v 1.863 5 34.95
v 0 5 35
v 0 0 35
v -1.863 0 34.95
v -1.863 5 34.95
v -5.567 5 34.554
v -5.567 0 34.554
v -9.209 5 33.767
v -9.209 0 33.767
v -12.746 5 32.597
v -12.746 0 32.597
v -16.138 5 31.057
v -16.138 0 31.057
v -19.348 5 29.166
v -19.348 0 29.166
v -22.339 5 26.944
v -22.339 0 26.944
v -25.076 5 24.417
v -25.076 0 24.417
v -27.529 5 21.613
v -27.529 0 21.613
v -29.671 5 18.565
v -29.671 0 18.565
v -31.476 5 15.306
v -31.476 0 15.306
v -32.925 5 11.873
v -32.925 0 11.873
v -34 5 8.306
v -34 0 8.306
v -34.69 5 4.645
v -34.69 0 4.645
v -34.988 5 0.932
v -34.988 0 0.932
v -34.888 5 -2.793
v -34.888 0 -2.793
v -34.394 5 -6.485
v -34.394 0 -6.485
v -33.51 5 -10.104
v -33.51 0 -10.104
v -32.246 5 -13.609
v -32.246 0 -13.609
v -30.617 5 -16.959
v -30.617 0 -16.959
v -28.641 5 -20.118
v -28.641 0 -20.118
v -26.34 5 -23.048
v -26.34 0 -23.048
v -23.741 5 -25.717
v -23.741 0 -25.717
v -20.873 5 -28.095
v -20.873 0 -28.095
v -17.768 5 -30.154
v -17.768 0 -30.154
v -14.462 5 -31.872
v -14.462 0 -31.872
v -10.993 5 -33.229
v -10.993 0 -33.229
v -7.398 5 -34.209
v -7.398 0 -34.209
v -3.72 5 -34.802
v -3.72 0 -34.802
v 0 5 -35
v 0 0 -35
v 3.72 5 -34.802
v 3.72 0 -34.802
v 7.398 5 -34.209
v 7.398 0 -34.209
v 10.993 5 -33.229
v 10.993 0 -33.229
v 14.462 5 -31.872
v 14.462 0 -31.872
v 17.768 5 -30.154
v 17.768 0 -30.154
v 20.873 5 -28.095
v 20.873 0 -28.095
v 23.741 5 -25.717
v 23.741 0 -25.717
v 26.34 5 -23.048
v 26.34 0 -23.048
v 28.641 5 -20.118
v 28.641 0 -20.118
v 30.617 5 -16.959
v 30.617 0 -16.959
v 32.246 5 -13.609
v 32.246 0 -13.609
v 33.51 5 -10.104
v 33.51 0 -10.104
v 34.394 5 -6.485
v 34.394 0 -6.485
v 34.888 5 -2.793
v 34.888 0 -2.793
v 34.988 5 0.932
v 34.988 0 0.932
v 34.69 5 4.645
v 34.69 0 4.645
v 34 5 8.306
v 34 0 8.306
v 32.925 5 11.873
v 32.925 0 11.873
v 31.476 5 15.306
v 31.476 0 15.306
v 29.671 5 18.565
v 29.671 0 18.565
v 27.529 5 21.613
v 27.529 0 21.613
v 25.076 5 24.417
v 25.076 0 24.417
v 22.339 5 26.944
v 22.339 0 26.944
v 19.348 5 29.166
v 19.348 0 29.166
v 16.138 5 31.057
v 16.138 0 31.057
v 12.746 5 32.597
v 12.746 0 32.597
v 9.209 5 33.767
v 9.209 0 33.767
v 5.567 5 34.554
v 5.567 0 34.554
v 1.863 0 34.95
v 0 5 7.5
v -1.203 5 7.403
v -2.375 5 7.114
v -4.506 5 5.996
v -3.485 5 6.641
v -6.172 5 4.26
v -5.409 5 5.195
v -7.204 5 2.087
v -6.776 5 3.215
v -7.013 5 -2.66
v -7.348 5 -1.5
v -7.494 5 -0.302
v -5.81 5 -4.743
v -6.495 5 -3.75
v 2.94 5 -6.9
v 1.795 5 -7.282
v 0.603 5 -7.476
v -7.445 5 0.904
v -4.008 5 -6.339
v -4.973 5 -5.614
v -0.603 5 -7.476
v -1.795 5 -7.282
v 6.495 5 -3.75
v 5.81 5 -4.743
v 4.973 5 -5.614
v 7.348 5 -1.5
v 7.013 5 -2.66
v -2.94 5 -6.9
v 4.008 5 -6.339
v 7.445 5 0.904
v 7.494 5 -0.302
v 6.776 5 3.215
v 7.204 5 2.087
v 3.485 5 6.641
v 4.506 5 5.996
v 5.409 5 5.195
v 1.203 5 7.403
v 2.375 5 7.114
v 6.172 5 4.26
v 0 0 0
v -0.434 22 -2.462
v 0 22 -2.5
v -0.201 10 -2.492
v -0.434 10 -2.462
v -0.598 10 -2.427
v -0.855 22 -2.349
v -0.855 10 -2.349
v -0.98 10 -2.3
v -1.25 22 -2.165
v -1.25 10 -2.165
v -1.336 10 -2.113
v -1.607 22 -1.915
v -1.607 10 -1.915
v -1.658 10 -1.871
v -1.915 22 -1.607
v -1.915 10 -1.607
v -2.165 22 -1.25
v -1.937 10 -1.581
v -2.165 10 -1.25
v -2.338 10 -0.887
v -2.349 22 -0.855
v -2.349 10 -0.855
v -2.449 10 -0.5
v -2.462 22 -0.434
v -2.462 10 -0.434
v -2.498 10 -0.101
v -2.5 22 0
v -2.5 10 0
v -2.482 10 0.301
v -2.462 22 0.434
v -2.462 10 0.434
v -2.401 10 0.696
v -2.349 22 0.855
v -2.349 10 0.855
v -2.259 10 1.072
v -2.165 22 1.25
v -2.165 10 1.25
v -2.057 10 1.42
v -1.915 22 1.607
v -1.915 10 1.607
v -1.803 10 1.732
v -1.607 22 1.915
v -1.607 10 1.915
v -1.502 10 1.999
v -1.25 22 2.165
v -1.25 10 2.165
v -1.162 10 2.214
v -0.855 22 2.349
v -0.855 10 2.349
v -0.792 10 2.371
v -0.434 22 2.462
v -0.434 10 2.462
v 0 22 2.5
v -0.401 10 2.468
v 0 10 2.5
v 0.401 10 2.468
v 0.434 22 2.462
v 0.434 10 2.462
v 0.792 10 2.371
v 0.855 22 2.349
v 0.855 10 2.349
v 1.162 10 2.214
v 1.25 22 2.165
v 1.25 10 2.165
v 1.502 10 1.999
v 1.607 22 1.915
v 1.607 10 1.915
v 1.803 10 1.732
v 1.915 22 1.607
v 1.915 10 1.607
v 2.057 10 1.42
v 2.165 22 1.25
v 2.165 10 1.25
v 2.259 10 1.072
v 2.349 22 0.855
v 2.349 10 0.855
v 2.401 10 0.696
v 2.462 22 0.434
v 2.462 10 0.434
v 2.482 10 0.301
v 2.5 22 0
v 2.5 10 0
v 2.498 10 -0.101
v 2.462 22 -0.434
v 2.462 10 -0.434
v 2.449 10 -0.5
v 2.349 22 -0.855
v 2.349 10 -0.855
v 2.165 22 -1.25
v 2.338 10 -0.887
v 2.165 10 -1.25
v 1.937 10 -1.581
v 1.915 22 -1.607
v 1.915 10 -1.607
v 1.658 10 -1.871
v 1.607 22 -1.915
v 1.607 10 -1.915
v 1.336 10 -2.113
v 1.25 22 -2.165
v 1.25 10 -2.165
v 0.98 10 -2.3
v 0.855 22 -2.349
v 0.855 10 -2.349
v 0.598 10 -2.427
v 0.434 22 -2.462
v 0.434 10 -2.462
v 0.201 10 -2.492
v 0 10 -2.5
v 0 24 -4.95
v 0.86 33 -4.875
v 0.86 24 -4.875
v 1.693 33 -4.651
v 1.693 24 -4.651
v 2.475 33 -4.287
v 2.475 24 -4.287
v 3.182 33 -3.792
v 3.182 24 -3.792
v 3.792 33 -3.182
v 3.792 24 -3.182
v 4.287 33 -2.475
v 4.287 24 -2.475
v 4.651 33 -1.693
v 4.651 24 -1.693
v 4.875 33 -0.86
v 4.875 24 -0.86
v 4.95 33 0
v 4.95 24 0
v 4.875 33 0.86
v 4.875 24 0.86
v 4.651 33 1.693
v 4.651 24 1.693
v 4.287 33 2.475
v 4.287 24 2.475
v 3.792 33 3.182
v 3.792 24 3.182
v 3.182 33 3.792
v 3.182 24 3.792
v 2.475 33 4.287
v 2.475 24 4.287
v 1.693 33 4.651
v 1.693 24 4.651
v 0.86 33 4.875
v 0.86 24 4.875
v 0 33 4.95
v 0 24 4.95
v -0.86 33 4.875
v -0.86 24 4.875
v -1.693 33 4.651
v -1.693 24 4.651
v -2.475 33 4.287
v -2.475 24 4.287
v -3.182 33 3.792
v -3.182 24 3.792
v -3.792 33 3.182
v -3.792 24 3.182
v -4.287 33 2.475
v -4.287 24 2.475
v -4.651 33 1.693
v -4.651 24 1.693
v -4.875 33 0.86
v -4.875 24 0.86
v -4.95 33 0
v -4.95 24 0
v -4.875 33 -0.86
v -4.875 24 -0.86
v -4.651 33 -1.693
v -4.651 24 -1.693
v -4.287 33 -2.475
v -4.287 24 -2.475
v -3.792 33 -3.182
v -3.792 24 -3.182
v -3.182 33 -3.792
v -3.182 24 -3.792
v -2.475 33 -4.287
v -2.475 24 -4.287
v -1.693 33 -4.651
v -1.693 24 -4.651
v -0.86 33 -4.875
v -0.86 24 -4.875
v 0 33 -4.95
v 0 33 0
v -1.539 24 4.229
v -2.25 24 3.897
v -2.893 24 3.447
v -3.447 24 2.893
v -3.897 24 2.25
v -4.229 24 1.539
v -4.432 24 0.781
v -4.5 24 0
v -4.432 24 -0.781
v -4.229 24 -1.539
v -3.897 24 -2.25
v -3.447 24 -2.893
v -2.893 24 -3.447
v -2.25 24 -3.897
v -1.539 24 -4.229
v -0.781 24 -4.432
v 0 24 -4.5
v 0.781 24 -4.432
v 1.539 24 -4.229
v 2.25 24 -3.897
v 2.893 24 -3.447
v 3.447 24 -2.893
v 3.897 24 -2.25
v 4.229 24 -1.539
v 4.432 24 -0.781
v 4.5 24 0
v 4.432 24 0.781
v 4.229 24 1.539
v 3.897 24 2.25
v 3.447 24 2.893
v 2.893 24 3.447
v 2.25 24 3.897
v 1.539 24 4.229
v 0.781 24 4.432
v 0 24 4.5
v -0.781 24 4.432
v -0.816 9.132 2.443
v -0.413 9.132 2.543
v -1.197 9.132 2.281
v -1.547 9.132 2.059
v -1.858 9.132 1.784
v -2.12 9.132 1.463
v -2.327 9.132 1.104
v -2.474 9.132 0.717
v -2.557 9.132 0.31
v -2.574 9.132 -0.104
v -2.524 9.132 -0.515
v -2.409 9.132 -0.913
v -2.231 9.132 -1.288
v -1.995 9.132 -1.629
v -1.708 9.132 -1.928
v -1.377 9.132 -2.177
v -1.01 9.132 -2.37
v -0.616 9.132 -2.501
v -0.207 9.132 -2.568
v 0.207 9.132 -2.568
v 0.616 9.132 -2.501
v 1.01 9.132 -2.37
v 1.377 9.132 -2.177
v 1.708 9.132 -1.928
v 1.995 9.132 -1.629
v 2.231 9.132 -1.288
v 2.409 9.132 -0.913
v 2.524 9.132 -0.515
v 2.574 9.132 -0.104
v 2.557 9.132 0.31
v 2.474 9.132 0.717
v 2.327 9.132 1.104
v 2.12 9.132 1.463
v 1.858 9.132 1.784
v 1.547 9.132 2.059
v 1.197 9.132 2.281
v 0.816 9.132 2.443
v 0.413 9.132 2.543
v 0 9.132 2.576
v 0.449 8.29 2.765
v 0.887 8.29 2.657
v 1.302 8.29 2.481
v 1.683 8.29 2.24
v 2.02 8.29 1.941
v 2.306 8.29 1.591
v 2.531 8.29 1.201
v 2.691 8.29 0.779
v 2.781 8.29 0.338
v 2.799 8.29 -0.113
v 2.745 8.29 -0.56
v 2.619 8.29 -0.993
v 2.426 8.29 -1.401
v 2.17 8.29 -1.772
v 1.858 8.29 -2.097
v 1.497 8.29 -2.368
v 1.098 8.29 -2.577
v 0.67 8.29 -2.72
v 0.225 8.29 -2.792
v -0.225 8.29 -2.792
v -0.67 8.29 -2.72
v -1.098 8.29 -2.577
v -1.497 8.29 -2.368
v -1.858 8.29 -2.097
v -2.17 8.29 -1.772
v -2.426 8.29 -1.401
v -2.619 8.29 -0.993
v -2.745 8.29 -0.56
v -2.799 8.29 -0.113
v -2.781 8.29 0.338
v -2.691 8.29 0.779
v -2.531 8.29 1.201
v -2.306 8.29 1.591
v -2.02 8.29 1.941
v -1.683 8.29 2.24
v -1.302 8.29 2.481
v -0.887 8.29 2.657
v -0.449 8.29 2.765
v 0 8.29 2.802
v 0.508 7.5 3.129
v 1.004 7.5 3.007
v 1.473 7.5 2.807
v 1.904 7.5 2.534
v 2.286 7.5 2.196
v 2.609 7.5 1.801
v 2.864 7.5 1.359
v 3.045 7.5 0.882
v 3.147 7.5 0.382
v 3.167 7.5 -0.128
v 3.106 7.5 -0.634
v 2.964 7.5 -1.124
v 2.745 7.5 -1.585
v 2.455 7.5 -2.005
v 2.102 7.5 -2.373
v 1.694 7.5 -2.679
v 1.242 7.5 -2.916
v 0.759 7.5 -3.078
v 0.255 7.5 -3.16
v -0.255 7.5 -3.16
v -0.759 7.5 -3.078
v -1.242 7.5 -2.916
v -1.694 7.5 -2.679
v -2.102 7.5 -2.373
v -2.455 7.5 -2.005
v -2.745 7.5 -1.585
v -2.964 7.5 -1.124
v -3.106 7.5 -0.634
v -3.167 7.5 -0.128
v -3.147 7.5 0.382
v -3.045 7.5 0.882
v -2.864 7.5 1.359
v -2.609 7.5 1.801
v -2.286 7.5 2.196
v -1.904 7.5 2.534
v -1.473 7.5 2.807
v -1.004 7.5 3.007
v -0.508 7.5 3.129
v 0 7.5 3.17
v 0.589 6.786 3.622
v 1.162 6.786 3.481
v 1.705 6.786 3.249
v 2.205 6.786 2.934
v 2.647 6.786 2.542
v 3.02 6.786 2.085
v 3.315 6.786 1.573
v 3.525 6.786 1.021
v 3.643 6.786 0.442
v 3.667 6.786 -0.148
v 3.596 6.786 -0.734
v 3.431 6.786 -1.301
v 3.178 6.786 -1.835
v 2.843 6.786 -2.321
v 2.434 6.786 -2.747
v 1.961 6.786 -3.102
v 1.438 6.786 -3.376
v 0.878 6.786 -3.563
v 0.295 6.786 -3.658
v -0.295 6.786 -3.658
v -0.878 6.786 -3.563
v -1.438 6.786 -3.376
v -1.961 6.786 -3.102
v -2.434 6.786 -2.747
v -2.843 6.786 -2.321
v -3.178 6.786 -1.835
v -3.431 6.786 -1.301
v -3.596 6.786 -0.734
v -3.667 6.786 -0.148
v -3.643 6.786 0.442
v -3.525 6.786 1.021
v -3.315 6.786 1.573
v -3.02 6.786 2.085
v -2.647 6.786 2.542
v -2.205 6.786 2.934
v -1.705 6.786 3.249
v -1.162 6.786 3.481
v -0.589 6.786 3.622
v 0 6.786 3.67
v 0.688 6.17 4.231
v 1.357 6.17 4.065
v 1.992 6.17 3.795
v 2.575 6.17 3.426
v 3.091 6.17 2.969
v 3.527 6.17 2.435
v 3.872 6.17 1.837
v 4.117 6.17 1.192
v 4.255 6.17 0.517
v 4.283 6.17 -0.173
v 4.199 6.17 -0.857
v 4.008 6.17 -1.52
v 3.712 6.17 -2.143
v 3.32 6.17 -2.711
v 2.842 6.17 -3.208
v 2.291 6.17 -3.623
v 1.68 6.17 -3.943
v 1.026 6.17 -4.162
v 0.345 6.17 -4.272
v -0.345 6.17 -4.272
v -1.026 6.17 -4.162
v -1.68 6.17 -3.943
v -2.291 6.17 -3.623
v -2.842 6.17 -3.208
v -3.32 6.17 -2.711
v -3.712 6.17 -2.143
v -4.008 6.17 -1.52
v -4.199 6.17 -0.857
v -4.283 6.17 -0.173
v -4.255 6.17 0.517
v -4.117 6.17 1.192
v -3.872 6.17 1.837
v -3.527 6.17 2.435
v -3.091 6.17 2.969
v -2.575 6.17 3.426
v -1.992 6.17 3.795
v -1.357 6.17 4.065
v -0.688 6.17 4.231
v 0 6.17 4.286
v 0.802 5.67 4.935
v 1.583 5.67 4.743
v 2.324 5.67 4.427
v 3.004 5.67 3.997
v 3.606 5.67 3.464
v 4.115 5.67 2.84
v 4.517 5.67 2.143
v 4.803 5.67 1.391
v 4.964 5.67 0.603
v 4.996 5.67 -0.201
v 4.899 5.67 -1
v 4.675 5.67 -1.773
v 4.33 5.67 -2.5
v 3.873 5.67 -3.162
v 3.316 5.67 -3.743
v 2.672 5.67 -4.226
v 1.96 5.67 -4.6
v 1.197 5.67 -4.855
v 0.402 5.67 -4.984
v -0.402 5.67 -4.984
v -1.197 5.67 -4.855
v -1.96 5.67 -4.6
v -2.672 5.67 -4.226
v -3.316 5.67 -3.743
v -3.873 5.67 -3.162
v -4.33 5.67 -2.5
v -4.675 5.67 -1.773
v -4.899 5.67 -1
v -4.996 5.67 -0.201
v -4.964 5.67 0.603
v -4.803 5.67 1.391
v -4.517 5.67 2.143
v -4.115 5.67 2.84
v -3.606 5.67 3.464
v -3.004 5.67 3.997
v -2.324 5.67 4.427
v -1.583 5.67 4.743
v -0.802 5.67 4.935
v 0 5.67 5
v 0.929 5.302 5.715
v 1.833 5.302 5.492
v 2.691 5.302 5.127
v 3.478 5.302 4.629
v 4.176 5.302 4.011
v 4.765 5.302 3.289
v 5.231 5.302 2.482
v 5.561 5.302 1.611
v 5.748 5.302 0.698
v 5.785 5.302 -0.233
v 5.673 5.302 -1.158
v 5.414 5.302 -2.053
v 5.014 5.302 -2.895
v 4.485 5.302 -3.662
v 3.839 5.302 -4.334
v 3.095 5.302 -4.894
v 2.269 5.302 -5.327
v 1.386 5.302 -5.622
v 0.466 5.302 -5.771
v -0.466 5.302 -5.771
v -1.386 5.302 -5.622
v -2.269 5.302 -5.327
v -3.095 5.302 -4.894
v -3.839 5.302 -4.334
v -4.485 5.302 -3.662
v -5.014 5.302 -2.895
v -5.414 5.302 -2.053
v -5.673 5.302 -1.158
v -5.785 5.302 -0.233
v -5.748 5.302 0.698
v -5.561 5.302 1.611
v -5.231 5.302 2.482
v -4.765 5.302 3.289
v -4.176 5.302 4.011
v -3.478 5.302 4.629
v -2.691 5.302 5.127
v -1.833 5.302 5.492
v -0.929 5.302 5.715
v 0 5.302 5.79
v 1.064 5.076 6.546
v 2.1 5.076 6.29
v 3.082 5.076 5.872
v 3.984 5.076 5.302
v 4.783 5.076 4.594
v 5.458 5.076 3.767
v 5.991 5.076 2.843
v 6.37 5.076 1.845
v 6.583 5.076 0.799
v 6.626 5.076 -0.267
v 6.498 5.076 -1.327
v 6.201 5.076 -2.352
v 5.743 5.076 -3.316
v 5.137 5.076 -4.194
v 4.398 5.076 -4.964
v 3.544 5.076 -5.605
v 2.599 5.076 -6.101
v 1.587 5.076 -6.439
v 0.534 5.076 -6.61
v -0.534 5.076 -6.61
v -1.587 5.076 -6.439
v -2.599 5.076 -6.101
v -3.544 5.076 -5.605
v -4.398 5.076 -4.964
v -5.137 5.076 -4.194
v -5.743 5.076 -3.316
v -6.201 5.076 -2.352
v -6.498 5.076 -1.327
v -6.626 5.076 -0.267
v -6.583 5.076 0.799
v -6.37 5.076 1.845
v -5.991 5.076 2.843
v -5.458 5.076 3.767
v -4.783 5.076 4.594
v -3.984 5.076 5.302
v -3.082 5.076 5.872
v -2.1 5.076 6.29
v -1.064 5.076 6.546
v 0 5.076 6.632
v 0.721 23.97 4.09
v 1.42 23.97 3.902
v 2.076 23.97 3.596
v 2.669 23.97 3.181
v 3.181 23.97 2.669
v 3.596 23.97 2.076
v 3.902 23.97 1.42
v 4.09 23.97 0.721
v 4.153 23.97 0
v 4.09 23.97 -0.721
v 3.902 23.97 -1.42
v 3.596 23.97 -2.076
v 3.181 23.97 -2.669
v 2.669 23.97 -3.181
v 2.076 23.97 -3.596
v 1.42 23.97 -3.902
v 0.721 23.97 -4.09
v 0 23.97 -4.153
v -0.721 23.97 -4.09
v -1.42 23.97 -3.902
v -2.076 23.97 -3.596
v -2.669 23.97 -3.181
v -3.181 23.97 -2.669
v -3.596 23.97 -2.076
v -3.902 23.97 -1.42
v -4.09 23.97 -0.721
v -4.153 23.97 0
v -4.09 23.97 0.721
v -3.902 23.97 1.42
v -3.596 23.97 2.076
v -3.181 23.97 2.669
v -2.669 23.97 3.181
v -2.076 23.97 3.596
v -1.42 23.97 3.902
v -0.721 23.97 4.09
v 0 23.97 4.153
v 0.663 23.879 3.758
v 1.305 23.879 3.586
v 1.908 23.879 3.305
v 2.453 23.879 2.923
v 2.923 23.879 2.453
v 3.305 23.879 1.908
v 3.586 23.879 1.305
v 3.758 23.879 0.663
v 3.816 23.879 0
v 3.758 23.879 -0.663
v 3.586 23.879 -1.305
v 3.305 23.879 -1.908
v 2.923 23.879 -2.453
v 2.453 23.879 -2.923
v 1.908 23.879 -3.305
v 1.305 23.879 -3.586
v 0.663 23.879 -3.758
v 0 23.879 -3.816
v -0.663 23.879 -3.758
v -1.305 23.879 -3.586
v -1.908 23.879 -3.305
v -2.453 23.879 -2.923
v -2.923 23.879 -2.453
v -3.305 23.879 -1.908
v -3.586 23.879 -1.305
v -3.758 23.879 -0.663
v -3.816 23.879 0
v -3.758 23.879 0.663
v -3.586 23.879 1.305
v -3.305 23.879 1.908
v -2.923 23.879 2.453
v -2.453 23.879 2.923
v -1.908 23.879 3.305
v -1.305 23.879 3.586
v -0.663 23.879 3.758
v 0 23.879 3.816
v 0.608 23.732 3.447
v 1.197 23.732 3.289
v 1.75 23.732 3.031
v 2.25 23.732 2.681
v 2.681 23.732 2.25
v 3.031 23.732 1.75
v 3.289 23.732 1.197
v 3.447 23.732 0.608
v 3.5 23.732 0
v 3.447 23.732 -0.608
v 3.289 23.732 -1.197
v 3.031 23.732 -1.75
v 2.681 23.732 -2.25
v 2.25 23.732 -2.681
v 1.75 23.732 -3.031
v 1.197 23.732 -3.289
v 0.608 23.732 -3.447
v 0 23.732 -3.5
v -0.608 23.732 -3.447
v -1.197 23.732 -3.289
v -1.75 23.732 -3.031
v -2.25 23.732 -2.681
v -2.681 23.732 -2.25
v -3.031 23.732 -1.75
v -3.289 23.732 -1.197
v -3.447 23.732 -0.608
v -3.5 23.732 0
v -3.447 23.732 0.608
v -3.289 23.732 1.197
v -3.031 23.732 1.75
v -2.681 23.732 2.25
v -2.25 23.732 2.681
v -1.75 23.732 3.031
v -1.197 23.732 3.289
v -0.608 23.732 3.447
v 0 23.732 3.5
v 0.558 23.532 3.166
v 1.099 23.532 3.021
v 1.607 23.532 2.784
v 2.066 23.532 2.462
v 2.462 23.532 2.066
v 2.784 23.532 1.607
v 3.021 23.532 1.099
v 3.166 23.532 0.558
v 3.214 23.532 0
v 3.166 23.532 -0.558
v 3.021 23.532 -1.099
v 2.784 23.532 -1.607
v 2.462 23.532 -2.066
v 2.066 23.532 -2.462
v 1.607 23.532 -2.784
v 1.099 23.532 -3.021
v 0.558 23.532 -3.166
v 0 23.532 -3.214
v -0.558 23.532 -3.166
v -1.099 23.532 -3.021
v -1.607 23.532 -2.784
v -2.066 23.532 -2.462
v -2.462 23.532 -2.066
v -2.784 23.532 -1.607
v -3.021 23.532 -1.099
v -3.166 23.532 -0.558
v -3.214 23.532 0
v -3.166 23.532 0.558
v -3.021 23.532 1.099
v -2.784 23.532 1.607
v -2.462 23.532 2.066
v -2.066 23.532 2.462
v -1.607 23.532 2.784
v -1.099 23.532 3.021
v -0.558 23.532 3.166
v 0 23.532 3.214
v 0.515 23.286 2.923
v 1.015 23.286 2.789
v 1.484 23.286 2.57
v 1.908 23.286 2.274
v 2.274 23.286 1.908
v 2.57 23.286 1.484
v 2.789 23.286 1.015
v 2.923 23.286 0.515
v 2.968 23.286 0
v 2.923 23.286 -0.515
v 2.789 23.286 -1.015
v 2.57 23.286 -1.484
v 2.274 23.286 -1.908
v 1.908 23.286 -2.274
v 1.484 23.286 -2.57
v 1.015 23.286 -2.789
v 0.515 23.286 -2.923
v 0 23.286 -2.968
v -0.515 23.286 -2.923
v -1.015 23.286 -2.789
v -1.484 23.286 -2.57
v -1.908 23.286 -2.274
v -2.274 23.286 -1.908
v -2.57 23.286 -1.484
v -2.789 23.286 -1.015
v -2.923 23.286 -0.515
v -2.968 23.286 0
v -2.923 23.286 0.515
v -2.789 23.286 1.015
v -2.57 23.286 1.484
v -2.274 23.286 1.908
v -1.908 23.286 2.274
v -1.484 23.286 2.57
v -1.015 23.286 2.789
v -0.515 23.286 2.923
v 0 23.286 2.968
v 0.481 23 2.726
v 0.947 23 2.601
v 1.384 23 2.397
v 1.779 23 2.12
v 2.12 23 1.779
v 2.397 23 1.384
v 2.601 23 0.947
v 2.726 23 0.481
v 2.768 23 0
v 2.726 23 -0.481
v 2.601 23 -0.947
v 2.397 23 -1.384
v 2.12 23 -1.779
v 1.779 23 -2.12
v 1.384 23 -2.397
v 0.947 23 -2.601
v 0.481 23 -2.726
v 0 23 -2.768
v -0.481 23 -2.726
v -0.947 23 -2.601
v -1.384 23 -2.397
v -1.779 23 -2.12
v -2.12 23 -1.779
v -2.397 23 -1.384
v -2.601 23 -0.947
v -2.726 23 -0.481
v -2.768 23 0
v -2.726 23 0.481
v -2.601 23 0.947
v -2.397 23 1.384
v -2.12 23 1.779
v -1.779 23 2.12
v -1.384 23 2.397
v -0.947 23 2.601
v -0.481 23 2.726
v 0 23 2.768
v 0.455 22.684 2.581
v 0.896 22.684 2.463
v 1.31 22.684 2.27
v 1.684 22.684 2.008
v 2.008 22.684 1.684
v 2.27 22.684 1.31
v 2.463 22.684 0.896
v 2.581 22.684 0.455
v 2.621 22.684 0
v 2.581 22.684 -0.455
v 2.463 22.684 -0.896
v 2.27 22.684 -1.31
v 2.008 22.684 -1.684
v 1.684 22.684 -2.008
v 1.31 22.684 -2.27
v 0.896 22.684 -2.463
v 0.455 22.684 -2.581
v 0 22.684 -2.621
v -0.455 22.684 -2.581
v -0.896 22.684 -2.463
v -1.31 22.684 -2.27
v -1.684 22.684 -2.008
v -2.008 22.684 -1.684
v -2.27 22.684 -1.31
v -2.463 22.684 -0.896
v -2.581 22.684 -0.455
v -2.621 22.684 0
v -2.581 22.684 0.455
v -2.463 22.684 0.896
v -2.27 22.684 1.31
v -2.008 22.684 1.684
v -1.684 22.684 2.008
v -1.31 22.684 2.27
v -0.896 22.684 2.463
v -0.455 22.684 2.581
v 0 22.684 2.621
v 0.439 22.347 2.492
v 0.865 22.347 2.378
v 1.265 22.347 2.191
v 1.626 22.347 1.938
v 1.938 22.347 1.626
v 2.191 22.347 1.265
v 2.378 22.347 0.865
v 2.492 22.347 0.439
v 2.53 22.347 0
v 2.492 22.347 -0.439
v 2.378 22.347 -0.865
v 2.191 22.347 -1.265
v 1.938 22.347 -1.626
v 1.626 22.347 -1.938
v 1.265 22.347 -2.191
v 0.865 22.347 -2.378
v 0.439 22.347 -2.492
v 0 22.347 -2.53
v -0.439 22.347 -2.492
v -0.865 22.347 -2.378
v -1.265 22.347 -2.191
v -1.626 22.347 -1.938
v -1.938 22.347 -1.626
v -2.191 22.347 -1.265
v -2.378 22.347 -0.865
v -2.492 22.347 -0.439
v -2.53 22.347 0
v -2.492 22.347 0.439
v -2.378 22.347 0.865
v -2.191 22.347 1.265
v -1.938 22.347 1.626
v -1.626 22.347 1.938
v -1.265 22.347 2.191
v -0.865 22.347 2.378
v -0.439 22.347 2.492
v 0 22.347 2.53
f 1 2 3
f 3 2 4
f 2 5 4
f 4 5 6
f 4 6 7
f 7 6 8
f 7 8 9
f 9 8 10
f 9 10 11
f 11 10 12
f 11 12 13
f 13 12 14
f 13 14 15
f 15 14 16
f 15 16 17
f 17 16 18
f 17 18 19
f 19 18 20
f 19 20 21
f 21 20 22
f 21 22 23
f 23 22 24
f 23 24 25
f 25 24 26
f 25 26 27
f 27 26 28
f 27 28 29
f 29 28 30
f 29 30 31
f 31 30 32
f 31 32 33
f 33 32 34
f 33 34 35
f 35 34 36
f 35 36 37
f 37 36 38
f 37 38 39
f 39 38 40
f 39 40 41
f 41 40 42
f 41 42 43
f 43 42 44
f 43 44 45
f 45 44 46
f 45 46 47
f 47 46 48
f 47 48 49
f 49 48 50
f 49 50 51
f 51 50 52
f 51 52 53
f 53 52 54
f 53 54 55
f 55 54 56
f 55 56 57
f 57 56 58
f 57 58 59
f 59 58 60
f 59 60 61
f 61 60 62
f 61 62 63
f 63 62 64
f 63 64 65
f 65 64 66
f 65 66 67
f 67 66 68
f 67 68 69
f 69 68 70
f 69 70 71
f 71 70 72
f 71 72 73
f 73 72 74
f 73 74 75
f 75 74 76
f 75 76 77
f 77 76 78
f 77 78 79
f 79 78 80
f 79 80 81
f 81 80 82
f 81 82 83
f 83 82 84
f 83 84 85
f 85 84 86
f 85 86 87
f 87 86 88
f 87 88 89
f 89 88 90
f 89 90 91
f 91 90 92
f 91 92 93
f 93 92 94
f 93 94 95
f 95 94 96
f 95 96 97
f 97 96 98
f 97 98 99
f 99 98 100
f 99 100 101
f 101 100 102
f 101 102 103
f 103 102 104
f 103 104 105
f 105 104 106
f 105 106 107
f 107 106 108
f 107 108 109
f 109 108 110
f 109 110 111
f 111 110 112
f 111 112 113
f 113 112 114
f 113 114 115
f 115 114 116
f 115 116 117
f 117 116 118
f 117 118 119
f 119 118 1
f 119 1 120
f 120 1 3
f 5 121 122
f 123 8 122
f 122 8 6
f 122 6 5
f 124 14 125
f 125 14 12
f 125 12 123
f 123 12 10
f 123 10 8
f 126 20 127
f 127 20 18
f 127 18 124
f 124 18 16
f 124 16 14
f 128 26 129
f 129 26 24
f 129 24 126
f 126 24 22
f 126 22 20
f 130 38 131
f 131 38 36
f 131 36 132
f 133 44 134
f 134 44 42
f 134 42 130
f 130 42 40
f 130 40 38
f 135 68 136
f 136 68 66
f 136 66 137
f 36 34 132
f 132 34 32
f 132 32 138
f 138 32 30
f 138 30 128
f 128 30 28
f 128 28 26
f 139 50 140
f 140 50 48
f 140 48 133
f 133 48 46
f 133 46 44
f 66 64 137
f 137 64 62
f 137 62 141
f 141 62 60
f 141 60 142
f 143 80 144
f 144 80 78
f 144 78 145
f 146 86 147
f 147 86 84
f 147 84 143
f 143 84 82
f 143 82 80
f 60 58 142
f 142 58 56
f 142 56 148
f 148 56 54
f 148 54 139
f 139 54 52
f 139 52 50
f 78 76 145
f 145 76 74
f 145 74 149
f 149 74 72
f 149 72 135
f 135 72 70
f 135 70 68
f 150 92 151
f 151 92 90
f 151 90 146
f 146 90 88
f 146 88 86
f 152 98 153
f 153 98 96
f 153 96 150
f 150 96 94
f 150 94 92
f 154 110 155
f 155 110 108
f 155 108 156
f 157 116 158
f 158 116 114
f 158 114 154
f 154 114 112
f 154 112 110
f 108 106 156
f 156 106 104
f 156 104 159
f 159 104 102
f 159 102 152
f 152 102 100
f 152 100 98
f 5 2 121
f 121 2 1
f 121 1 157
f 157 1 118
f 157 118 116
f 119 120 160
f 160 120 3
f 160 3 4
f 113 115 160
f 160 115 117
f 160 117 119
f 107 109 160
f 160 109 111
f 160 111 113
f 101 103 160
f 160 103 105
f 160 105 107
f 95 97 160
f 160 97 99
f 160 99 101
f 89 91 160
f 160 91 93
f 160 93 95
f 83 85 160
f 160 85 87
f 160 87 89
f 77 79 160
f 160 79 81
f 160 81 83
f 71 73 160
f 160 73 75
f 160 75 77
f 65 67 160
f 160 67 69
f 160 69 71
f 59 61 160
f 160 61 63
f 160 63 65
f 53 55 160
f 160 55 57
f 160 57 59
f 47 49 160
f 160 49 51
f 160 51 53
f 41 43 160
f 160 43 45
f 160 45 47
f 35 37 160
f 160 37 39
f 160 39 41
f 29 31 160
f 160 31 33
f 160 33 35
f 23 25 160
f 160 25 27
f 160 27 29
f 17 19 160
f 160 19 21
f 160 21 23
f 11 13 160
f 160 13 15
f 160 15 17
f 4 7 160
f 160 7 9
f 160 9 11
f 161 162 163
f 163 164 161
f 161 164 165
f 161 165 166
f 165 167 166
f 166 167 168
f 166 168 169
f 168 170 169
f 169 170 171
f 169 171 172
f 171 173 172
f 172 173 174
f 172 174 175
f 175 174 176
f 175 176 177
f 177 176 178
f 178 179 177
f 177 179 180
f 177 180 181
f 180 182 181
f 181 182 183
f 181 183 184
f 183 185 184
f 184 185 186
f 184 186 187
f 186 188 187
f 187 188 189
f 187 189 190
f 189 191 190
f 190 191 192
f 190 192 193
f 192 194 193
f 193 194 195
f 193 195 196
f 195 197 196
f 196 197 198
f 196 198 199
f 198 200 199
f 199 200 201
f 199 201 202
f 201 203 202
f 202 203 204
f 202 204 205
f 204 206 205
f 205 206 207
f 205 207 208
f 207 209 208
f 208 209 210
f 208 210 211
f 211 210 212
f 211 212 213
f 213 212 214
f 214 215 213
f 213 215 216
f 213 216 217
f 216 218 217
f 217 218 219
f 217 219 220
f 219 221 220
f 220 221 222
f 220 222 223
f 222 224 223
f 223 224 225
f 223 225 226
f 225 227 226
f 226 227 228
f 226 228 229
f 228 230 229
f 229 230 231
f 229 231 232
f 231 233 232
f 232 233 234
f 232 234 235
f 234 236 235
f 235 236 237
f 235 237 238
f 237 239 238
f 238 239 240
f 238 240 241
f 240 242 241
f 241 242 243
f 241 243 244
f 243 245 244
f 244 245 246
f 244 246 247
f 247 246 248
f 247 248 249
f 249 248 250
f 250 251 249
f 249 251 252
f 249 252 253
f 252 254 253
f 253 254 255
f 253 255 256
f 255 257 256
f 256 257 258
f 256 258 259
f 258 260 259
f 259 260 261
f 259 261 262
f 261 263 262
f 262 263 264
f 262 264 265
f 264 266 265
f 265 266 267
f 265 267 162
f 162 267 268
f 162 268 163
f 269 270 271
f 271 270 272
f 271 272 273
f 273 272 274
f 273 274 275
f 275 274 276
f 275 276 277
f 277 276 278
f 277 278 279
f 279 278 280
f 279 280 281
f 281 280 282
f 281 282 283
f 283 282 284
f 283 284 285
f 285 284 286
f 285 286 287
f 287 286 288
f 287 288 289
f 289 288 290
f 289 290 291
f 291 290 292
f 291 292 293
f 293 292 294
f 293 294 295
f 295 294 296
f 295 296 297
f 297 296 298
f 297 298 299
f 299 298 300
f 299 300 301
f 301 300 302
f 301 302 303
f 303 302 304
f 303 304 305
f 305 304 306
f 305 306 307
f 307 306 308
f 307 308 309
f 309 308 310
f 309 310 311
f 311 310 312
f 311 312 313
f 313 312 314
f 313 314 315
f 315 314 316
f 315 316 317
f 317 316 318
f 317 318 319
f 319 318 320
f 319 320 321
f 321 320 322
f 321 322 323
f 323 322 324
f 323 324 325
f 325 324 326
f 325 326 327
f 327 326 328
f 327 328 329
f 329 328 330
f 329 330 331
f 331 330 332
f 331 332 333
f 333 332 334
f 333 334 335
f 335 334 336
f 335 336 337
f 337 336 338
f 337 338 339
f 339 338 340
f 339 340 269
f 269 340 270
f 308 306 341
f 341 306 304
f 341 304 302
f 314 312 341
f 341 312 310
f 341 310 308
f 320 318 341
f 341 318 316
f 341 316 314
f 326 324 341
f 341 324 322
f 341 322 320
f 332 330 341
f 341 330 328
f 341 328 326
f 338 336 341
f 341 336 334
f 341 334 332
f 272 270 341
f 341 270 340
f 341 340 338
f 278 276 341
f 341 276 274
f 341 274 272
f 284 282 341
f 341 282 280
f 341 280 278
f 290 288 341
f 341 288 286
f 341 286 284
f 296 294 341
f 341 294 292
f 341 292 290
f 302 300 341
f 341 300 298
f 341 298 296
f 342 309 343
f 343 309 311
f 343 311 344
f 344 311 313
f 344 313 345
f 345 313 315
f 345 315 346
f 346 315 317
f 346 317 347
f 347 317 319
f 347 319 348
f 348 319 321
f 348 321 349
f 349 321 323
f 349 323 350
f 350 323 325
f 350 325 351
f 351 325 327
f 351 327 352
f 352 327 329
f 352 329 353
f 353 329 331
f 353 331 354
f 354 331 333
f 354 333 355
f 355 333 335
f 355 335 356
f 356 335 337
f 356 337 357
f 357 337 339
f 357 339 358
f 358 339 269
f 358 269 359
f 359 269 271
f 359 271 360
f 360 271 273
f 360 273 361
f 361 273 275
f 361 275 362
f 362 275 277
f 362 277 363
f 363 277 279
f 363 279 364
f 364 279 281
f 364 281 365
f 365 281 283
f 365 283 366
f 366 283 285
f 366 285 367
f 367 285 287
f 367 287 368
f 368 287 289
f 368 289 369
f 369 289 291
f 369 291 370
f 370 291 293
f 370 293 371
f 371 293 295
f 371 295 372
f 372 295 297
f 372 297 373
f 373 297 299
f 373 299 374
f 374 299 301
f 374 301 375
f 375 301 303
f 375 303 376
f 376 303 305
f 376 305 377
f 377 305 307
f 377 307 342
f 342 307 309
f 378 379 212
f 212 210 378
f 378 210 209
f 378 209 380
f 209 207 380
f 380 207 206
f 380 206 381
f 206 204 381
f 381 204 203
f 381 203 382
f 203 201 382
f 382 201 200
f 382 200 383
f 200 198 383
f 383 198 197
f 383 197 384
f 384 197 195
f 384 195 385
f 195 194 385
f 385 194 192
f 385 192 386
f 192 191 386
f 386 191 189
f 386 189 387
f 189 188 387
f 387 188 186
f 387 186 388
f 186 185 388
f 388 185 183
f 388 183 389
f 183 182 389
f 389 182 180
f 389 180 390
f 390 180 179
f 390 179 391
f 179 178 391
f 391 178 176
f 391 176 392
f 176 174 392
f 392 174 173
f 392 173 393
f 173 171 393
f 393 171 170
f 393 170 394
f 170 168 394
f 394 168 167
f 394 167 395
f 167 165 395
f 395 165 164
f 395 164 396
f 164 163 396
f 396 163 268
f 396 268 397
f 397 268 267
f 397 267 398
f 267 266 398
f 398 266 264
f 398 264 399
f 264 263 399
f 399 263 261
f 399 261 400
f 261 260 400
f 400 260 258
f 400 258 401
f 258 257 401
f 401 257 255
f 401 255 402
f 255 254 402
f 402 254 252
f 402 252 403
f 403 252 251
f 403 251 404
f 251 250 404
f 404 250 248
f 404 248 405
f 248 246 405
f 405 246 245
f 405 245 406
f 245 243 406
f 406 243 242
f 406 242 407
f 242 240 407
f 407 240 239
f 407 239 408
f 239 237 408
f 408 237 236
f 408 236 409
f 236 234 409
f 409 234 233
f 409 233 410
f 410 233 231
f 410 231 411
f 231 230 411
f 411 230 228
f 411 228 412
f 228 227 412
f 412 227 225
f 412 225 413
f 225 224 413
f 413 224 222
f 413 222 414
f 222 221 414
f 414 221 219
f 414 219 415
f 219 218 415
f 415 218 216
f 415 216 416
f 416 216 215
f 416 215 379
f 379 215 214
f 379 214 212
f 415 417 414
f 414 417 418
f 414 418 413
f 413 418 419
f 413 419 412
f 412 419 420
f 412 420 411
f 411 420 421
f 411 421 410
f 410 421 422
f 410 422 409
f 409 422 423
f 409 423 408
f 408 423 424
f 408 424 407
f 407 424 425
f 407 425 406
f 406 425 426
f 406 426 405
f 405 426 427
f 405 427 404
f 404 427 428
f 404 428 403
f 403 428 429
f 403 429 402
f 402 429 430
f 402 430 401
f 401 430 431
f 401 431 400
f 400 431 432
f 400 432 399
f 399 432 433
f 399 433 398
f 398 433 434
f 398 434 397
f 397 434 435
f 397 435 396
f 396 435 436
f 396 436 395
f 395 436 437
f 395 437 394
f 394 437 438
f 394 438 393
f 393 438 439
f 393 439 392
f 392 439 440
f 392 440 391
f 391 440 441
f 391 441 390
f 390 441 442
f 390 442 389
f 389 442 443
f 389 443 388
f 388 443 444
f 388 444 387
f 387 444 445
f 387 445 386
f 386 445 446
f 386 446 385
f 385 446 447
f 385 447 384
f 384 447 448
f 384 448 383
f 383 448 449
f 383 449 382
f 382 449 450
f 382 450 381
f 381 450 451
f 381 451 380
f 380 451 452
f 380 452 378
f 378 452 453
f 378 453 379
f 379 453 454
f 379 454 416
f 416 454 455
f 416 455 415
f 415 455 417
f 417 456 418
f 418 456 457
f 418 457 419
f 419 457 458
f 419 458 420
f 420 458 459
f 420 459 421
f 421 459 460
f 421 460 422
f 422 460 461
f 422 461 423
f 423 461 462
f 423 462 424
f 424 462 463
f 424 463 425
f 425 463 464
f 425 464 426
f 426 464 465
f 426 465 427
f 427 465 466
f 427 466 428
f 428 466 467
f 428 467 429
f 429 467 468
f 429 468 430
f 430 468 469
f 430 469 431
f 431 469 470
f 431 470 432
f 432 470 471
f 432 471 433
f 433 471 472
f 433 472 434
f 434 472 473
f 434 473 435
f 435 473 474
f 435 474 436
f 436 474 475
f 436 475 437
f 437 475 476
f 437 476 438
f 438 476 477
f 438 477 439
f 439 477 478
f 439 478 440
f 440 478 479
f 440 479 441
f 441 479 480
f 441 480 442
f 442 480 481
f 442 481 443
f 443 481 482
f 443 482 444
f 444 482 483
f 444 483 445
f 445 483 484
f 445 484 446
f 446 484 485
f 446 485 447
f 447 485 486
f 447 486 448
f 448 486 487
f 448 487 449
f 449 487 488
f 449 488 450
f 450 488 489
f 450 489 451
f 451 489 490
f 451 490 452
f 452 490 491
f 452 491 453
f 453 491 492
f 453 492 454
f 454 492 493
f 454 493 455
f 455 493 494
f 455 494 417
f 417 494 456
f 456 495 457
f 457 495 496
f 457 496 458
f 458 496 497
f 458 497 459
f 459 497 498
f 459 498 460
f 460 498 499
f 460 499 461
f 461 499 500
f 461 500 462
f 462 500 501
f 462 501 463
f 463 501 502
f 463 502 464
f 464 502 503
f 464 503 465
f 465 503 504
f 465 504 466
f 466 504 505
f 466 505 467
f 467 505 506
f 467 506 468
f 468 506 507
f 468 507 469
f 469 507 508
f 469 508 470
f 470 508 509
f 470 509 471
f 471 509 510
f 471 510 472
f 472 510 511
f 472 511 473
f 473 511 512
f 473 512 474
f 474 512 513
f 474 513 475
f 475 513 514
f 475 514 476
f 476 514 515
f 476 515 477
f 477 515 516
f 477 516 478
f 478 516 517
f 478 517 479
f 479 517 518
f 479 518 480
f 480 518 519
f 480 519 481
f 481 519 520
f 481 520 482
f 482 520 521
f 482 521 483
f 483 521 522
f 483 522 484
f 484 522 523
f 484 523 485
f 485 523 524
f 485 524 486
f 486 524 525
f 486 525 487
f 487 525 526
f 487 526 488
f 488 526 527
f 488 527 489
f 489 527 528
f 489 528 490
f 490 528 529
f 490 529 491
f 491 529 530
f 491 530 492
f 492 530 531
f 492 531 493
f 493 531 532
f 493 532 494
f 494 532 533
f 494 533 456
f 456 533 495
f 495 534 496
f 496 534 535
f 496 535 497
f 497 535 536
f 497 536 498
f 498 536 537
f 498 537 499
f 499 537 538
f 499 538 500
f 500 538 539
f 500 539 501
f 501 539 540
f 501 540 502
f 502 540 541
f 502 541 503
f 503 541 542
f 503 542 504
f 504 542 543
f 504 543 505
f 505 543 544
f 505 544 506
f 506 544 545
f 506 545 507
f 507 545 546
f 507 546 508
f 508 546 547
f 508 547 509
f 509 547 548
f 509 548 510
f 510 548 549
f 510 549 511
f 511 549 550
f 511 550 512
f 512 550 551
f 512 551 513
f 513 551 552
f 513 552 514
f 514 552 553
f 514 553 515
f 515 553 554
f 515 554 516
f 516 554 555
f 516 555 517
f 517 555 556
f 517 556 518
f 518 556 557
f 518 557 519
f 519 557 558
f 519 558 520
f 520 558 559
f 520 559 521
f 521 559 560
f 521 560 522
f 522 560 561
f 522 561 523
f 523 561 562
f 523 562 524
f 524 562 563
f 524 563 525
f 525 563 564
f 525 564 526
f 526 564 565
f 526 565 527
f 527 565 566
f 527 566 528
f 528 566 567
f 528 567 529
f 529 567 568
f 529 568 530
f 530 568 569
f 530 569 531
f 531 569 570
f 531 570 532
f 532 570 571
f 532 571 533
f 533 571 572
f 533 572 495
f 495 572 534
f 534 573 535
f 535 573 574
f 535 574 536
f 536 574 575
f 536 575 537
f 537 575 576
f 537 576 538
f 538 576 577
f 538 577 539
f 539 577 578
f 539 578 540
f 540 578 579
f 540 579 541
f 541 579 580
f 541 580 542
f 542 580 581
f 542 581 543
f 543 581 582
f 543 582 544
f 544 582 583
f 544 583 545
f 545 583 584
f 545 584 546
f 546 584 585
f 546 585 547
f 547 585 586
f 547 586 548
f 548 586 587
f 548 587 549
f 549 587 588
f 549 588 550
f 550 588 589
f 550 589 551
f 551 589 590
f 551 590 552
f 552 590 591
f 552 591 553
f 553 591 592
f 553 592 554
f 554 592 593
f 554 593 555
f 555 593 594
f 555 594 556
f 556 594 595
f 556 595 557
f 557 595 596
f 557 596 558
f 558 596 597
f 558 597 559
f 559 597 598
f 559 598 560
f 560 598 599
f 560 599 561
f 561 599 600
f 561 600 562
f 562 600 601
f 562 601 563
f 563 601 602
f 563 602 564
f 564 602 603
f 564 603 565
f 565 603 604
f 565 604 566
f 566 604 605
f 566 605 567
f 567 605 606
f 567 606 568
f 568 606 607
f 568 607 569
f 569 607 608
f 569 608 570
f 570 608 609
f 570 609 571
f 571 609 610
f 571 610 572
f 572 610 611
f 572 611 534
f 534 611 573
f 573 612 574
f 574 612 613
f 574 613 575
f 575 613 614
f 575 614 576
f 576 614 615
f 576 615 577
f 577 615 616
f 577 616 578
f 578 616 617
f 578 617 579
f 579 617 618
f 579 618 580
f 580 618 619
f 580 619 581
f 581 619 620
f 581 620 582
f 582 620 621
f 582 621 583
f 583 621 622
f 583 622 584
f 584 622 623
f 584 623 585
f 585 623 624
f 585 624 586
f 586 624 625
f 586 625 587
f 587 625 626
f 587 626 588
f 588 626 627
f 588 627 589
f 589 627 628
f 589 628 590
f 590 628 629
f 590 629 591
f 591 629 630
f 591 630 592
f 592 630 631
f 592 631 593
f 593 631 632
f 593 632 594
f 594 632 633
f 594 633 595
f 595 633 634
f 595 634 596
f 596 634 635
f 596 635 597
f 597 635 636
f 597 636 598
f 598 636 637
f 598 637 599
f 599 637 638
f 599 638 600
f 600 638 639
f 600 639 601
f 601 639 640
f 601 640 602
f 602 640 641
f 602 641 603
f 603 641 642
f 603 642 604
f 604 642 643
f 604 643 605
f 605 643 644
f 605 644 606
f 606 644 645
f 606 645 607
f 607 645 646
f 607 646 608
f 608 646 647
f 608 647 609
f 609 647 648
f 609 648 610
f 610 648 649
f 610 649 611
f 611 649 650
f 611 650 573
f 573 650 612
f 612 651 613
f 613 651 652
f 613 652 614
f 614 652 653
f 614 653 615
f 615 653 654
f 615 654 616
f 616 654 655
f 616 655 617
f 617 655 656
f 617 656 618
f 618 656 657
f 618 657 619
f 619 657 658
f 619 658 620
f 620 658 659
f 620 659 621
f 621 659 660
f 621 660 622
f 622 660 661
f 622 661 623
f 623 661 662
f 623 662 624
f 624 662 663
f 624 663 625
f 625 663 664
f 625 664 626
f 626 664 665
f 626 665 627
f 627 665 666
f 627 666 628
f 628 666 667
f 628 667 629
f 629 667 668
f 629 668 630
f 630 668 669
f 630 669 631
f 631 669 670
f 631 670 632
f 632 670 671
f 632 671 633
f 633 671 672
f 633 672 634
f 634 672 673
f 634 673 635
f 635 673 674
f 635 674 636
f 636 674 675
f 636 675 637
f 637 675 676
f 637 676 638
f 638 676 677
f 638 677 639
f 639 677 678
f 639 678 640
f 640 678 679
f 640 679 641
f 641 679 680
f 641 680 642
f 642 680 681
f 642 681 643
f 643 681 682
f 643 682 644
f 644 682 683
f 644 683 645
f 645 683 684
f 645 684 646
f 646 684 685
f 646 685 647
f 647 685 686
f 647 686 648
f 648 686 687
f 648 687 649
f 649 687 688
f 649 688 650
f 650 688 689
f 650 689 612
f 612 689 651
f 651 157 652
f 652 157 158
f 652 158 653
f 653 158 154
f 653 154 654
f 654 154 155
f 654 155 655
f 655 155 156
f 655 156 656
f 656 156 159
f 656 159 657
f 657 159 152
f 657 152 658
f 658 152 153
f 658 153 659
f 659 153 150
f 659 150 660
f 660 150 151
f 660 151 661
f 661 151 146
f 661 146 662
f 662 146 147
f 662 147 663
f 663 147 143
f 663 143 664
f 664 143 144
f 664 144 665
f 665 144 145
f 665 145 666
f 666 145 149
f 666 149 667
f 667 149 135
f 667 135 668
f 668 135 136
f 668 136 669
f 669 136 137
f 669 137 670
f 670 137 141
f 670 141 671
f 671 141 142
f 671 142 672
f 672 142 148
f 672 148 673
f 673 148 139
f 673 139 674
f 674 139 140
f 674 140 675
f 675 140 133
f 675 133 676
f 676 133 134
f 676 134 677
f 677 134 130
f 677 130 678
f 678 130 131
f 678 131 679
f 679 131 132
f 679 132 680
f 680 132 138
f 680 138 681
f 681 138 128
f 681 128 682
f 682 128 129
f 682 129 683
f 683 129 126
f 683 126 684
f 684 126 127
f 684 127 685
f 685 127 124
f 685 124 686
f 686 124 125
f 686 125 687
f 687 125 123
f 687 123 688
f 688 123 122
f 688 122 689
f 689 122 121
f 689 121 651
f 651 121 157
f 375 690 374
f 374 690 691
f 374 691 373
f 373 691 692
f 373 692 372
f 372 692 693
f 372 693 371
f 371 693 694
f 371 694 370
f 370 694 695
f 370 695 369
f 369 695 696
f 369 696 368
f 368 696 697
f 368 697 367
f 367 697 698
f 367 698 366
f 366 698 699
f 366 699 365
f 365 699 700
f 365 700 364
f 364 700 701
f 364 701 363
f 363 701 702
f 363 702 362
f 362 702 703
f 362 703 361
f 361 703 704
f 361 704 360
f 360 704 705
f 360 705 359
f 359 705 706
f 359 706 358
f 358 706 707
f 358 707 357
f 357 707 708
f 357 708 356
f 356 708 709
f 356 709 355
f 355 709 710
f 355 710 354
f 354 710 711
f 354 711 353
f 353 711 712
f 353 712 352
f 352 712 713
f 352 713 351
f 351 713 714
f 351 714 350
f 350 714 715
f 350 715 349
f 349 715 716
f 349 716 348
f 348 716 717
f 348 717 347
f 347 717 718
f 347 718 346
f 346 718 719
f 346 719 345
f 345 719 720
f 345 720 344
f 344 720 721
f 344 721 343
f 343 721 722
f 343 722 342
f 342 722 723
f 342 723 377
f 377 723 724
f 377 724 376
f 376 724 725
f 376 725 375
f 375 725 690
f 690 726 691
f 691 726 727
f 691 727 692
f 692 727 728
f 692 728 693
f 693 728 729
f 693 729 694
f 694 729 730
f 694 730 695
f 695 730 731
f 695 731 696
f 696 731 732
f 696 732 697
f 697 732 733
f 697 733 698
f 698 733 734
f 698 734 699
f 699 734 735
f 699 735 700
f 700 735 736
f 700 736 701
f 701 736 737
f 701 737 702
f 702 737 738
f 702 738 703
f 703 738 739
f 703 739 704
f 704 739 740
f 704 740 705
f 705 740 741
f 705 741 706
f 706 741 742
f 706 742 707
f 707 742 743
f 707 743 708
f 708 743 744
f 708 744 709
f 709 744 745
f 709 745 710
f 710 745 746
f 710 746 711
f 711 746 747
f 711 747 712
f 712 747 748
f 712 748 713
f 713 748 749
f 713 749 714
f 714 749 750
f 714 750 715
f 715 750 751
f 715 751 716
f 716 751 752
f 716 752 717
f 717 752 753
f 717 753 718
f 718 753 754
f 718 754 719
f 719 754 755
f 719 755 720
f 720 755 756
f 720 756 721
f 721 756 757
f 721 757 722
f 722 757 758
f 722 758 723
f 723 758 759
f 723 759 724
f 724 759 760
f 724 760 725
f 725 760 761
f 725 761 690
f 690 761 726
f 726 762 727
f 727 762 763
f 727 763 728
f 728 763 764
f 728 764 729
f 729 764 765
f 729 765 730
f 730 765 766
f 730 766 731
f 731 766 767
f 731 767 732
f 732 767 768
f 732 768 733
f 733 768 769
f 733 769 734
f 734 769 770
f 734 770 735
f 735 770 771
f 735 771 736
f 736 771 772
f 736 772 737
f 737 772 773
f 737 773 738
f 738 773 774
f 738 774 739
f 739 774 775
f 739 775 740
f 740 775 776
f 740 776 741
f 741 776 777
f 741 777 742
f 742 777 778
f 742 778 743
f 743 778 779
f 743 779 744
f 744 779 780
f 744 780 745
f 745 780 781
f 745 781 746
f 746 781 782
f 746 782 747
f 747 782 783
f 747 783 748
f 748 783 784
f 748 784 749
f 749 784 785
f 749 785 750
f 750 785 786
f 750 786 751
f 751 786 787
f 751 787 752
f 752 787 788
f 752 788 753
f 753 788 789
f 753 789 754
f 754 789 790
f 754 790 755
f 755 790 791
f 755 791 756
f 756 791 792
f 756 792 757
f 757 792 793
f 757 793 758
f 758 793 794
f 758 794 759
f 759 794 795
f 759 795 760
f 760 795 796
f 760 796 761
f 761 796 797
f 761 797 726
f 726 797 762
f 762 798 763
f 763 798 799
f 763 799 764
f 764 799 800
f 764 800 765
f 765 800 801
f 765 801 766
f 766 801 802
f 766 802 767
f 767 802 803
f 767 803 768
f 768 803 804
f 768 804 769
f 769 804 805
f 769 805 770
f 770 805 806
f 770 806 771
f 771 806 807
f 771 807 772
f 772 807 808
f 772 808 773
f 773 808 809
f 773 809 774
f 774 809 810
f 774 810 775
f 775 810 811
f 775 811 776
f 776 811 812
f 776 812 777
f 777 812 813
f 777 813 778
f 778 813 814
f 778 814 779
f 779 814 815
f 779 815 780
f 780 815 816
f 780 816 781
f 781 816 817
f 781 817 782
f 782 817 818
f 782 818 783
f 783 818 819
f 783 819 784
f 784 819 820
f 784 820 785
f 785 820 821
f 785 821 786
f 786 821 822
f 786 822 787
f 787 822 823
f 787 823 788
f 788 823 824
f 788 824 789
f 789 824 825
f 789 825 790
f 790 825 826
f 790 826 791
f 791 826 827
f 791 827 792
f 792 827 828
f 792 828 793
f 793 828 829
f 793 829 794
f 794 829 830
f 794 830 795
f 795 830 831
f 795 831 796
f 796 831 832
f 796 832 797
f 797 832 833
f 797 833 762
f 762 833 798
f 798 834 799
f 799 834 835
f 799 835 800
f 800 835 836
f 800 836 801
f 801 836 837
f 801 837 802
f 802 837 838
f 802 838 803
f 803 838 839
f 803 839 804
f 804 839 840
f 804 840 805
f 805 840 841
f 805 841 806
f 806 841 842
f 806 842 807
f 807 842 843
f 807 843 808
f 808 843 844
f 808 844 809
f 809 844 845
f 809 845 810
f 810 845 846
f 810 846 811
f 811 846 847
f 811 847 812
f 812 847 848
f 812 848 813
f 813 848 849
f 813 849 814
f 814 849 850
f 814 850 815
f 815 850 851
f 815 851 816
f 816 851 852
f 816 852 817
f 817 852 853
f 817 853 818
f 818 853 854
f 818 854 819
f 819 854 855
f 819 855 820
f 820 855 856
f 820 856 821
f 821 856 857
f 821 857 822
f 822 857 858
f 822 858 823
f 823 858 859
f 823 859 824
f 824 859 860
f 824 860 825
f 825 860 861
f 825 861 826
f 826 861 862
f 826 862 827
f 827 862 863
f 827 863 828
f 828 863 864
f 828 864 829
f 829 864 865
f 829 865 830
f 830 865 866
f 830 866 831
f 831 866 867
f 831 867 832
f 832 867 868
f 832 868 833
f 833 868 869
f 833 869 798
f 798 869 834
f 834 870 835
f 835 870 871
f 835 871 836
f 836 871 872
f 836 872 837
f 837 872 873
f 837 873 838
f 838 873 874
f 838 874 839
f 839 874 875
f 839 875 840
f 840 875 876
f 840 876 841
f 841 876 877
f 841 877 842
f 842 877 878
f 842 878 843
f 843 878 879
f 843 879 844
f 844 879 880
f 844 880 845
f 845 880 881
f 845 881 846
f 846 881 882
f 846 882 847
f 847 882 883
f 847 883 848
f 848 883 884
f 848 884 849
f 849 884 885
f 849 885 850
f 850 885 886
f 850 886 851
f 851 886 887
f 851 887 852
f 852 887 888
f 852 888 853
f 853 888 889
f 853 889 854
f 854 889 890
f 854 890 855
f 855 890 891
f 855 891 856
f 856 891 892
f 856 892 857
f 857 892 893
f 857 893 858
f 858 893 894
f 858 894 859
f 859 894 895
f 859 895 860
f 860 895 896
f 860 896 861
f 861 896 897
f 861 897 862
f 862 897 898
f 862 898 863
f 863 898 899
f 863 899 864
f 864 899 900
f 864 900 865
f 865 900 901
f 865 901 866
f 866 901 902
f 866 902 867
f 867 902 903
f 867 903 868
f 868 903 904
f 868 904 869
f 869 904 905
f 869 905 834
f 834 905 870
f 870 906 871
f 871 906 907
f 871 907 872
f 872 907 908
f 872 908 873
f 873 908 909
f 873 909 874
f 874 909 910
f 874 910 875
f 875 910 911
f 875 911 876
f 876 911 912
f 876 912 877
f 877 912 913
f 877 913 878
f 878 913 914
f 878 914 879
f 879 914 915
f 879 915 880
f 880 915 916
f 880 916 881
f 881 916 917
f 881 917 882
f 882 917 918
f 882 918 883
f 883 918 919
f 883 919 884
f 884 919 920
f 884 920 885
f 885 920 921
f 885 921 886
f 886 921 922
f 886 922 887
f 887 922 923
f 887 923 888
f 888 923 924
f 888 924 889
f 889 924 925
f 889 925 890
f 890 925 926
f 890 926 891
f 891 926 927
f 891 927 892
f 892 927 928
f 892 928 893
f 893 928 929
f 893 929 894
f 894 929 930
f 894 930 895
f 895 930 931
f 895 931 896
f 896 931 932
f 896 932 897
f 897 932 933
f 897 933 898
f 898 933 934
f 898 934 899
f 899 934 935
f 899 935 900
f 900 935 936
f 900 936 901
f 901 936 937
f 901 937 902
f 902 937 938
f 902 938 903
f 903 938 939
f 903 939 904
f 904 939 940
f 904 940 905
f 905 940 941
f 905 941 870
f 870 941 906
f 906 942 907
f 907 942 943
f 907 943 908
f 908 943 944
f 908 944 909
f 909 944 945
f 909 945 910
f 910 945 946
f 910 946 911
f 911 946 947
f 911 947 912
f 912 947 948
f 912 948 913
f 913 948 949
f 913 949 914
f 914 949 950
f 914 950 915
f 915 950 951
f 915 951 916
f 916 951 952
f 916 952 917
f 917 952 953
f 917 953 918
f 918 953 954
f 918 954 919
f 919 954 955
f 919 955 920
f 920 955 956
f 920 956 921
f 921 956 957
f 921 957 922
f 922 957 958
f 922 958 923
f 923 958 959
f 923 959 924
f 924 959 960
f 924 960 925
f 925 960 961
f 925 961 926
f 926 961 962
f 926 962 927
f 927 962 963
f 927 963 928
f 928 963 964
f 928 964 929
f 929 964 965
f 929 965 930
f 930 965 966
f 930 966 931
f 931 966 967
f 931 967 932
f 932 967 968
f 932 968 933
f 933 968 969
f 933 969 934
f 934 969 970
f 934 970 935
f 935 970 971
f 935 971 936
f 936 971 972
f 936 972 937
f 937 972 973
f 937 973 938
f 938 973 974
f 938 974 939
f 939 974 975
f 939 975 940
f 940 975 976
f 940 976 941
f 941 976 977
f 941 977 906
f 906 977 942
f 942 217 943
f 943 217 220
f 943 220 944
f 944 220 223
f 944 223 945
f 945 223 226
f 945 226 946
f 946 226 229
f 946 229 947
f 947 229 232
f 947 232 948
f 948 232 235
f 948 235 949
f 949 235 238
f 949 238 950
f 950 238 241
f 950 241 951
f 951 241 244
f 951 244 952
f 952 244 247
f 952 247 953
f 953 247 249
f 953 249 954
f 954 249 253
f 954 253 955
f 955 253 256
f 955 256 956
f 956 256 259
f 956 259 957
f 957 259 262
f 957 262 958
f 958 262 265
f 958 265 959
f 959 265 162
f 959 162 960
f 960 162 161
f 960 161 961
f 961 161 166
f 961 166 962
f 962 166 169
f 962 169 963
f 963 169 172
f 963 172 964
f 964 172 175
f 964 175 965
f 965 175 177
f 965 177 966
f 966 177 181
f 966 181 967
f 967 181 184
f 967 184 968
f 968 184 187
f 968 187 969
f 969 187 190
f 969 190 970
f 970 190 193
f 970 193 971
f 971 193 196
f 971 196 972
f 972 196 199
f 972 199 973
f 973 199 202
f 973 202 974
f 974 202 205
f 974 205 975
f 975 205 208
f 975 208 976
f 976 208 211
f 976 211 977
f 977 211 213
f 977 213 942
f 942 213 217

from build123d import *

# Parameters (mm, degrees)
SKETCH_1_R      = 35
EXTRUDE_1_DEPTH = 5
SKETCH_2_R      = 2.5
EXTRUDE_2_DEPTH = 19
SKETCH_3_R      = 5
EXTRUDE_3_DEPTH = 9
FILLET_1_R      = 5
FILLET_2_R      = 2


with BuildPart() as part:
    # 草图1 → 凸台-拉伸1 (new body)
    with BuildSketch(Plane(origin=(0, 0, 0), x_dir=(1, 0, 0), z_dir=(0, 1, 0))):
        with Locations(Location((0, 0, 0), (0, 0, 270))):
            Circle(SKETCH_1_R)
    extrude(amount=EXTRUDE_1_DEPTH)

    # 草图2 → 凸台-拉伸2 (add)
    with BuildSketch(Plane(origin=(0, 5, 0), x_dir=(1, 0, 0), z_dir=(0, 1, 0))):
        with Locations(Location((0, 0, 0), (0, 0, 270))):
            Circle(SKETCH_2_R)
    extrude(amount=EXTRUDE_2_DEPTH)

    # 草图3 → 凸台-拉伸3 (add)
    with BuildSketch(Plane(origin=(0, 24, 0), x_dir=(1, 0, 0), z_dir=(0, 1, 0))):
        with Locations(Location((0, 0, 0), (0, 0, 270))):
            Circle(SKETCH_3_R)
    extrude(amount=EXTRUDE_3_DEPTH)

    # 圆角1
    fillet_1_edges = [part.edges().sort_by_distance(p)[0] for p in [
        (0, 5, -2.5),
    ]]
    fillet(fillet_1_edges, radius=FILLET_1_R)

    # 圆角2
    fillet_2_edges = [part.edges().sort_by_distance(p)[0] for p in [
        (0, 24, -2.5),
    ]]
    fillet(fillet_2_edges, radius=FILLET_2_R)


solid = part.part
